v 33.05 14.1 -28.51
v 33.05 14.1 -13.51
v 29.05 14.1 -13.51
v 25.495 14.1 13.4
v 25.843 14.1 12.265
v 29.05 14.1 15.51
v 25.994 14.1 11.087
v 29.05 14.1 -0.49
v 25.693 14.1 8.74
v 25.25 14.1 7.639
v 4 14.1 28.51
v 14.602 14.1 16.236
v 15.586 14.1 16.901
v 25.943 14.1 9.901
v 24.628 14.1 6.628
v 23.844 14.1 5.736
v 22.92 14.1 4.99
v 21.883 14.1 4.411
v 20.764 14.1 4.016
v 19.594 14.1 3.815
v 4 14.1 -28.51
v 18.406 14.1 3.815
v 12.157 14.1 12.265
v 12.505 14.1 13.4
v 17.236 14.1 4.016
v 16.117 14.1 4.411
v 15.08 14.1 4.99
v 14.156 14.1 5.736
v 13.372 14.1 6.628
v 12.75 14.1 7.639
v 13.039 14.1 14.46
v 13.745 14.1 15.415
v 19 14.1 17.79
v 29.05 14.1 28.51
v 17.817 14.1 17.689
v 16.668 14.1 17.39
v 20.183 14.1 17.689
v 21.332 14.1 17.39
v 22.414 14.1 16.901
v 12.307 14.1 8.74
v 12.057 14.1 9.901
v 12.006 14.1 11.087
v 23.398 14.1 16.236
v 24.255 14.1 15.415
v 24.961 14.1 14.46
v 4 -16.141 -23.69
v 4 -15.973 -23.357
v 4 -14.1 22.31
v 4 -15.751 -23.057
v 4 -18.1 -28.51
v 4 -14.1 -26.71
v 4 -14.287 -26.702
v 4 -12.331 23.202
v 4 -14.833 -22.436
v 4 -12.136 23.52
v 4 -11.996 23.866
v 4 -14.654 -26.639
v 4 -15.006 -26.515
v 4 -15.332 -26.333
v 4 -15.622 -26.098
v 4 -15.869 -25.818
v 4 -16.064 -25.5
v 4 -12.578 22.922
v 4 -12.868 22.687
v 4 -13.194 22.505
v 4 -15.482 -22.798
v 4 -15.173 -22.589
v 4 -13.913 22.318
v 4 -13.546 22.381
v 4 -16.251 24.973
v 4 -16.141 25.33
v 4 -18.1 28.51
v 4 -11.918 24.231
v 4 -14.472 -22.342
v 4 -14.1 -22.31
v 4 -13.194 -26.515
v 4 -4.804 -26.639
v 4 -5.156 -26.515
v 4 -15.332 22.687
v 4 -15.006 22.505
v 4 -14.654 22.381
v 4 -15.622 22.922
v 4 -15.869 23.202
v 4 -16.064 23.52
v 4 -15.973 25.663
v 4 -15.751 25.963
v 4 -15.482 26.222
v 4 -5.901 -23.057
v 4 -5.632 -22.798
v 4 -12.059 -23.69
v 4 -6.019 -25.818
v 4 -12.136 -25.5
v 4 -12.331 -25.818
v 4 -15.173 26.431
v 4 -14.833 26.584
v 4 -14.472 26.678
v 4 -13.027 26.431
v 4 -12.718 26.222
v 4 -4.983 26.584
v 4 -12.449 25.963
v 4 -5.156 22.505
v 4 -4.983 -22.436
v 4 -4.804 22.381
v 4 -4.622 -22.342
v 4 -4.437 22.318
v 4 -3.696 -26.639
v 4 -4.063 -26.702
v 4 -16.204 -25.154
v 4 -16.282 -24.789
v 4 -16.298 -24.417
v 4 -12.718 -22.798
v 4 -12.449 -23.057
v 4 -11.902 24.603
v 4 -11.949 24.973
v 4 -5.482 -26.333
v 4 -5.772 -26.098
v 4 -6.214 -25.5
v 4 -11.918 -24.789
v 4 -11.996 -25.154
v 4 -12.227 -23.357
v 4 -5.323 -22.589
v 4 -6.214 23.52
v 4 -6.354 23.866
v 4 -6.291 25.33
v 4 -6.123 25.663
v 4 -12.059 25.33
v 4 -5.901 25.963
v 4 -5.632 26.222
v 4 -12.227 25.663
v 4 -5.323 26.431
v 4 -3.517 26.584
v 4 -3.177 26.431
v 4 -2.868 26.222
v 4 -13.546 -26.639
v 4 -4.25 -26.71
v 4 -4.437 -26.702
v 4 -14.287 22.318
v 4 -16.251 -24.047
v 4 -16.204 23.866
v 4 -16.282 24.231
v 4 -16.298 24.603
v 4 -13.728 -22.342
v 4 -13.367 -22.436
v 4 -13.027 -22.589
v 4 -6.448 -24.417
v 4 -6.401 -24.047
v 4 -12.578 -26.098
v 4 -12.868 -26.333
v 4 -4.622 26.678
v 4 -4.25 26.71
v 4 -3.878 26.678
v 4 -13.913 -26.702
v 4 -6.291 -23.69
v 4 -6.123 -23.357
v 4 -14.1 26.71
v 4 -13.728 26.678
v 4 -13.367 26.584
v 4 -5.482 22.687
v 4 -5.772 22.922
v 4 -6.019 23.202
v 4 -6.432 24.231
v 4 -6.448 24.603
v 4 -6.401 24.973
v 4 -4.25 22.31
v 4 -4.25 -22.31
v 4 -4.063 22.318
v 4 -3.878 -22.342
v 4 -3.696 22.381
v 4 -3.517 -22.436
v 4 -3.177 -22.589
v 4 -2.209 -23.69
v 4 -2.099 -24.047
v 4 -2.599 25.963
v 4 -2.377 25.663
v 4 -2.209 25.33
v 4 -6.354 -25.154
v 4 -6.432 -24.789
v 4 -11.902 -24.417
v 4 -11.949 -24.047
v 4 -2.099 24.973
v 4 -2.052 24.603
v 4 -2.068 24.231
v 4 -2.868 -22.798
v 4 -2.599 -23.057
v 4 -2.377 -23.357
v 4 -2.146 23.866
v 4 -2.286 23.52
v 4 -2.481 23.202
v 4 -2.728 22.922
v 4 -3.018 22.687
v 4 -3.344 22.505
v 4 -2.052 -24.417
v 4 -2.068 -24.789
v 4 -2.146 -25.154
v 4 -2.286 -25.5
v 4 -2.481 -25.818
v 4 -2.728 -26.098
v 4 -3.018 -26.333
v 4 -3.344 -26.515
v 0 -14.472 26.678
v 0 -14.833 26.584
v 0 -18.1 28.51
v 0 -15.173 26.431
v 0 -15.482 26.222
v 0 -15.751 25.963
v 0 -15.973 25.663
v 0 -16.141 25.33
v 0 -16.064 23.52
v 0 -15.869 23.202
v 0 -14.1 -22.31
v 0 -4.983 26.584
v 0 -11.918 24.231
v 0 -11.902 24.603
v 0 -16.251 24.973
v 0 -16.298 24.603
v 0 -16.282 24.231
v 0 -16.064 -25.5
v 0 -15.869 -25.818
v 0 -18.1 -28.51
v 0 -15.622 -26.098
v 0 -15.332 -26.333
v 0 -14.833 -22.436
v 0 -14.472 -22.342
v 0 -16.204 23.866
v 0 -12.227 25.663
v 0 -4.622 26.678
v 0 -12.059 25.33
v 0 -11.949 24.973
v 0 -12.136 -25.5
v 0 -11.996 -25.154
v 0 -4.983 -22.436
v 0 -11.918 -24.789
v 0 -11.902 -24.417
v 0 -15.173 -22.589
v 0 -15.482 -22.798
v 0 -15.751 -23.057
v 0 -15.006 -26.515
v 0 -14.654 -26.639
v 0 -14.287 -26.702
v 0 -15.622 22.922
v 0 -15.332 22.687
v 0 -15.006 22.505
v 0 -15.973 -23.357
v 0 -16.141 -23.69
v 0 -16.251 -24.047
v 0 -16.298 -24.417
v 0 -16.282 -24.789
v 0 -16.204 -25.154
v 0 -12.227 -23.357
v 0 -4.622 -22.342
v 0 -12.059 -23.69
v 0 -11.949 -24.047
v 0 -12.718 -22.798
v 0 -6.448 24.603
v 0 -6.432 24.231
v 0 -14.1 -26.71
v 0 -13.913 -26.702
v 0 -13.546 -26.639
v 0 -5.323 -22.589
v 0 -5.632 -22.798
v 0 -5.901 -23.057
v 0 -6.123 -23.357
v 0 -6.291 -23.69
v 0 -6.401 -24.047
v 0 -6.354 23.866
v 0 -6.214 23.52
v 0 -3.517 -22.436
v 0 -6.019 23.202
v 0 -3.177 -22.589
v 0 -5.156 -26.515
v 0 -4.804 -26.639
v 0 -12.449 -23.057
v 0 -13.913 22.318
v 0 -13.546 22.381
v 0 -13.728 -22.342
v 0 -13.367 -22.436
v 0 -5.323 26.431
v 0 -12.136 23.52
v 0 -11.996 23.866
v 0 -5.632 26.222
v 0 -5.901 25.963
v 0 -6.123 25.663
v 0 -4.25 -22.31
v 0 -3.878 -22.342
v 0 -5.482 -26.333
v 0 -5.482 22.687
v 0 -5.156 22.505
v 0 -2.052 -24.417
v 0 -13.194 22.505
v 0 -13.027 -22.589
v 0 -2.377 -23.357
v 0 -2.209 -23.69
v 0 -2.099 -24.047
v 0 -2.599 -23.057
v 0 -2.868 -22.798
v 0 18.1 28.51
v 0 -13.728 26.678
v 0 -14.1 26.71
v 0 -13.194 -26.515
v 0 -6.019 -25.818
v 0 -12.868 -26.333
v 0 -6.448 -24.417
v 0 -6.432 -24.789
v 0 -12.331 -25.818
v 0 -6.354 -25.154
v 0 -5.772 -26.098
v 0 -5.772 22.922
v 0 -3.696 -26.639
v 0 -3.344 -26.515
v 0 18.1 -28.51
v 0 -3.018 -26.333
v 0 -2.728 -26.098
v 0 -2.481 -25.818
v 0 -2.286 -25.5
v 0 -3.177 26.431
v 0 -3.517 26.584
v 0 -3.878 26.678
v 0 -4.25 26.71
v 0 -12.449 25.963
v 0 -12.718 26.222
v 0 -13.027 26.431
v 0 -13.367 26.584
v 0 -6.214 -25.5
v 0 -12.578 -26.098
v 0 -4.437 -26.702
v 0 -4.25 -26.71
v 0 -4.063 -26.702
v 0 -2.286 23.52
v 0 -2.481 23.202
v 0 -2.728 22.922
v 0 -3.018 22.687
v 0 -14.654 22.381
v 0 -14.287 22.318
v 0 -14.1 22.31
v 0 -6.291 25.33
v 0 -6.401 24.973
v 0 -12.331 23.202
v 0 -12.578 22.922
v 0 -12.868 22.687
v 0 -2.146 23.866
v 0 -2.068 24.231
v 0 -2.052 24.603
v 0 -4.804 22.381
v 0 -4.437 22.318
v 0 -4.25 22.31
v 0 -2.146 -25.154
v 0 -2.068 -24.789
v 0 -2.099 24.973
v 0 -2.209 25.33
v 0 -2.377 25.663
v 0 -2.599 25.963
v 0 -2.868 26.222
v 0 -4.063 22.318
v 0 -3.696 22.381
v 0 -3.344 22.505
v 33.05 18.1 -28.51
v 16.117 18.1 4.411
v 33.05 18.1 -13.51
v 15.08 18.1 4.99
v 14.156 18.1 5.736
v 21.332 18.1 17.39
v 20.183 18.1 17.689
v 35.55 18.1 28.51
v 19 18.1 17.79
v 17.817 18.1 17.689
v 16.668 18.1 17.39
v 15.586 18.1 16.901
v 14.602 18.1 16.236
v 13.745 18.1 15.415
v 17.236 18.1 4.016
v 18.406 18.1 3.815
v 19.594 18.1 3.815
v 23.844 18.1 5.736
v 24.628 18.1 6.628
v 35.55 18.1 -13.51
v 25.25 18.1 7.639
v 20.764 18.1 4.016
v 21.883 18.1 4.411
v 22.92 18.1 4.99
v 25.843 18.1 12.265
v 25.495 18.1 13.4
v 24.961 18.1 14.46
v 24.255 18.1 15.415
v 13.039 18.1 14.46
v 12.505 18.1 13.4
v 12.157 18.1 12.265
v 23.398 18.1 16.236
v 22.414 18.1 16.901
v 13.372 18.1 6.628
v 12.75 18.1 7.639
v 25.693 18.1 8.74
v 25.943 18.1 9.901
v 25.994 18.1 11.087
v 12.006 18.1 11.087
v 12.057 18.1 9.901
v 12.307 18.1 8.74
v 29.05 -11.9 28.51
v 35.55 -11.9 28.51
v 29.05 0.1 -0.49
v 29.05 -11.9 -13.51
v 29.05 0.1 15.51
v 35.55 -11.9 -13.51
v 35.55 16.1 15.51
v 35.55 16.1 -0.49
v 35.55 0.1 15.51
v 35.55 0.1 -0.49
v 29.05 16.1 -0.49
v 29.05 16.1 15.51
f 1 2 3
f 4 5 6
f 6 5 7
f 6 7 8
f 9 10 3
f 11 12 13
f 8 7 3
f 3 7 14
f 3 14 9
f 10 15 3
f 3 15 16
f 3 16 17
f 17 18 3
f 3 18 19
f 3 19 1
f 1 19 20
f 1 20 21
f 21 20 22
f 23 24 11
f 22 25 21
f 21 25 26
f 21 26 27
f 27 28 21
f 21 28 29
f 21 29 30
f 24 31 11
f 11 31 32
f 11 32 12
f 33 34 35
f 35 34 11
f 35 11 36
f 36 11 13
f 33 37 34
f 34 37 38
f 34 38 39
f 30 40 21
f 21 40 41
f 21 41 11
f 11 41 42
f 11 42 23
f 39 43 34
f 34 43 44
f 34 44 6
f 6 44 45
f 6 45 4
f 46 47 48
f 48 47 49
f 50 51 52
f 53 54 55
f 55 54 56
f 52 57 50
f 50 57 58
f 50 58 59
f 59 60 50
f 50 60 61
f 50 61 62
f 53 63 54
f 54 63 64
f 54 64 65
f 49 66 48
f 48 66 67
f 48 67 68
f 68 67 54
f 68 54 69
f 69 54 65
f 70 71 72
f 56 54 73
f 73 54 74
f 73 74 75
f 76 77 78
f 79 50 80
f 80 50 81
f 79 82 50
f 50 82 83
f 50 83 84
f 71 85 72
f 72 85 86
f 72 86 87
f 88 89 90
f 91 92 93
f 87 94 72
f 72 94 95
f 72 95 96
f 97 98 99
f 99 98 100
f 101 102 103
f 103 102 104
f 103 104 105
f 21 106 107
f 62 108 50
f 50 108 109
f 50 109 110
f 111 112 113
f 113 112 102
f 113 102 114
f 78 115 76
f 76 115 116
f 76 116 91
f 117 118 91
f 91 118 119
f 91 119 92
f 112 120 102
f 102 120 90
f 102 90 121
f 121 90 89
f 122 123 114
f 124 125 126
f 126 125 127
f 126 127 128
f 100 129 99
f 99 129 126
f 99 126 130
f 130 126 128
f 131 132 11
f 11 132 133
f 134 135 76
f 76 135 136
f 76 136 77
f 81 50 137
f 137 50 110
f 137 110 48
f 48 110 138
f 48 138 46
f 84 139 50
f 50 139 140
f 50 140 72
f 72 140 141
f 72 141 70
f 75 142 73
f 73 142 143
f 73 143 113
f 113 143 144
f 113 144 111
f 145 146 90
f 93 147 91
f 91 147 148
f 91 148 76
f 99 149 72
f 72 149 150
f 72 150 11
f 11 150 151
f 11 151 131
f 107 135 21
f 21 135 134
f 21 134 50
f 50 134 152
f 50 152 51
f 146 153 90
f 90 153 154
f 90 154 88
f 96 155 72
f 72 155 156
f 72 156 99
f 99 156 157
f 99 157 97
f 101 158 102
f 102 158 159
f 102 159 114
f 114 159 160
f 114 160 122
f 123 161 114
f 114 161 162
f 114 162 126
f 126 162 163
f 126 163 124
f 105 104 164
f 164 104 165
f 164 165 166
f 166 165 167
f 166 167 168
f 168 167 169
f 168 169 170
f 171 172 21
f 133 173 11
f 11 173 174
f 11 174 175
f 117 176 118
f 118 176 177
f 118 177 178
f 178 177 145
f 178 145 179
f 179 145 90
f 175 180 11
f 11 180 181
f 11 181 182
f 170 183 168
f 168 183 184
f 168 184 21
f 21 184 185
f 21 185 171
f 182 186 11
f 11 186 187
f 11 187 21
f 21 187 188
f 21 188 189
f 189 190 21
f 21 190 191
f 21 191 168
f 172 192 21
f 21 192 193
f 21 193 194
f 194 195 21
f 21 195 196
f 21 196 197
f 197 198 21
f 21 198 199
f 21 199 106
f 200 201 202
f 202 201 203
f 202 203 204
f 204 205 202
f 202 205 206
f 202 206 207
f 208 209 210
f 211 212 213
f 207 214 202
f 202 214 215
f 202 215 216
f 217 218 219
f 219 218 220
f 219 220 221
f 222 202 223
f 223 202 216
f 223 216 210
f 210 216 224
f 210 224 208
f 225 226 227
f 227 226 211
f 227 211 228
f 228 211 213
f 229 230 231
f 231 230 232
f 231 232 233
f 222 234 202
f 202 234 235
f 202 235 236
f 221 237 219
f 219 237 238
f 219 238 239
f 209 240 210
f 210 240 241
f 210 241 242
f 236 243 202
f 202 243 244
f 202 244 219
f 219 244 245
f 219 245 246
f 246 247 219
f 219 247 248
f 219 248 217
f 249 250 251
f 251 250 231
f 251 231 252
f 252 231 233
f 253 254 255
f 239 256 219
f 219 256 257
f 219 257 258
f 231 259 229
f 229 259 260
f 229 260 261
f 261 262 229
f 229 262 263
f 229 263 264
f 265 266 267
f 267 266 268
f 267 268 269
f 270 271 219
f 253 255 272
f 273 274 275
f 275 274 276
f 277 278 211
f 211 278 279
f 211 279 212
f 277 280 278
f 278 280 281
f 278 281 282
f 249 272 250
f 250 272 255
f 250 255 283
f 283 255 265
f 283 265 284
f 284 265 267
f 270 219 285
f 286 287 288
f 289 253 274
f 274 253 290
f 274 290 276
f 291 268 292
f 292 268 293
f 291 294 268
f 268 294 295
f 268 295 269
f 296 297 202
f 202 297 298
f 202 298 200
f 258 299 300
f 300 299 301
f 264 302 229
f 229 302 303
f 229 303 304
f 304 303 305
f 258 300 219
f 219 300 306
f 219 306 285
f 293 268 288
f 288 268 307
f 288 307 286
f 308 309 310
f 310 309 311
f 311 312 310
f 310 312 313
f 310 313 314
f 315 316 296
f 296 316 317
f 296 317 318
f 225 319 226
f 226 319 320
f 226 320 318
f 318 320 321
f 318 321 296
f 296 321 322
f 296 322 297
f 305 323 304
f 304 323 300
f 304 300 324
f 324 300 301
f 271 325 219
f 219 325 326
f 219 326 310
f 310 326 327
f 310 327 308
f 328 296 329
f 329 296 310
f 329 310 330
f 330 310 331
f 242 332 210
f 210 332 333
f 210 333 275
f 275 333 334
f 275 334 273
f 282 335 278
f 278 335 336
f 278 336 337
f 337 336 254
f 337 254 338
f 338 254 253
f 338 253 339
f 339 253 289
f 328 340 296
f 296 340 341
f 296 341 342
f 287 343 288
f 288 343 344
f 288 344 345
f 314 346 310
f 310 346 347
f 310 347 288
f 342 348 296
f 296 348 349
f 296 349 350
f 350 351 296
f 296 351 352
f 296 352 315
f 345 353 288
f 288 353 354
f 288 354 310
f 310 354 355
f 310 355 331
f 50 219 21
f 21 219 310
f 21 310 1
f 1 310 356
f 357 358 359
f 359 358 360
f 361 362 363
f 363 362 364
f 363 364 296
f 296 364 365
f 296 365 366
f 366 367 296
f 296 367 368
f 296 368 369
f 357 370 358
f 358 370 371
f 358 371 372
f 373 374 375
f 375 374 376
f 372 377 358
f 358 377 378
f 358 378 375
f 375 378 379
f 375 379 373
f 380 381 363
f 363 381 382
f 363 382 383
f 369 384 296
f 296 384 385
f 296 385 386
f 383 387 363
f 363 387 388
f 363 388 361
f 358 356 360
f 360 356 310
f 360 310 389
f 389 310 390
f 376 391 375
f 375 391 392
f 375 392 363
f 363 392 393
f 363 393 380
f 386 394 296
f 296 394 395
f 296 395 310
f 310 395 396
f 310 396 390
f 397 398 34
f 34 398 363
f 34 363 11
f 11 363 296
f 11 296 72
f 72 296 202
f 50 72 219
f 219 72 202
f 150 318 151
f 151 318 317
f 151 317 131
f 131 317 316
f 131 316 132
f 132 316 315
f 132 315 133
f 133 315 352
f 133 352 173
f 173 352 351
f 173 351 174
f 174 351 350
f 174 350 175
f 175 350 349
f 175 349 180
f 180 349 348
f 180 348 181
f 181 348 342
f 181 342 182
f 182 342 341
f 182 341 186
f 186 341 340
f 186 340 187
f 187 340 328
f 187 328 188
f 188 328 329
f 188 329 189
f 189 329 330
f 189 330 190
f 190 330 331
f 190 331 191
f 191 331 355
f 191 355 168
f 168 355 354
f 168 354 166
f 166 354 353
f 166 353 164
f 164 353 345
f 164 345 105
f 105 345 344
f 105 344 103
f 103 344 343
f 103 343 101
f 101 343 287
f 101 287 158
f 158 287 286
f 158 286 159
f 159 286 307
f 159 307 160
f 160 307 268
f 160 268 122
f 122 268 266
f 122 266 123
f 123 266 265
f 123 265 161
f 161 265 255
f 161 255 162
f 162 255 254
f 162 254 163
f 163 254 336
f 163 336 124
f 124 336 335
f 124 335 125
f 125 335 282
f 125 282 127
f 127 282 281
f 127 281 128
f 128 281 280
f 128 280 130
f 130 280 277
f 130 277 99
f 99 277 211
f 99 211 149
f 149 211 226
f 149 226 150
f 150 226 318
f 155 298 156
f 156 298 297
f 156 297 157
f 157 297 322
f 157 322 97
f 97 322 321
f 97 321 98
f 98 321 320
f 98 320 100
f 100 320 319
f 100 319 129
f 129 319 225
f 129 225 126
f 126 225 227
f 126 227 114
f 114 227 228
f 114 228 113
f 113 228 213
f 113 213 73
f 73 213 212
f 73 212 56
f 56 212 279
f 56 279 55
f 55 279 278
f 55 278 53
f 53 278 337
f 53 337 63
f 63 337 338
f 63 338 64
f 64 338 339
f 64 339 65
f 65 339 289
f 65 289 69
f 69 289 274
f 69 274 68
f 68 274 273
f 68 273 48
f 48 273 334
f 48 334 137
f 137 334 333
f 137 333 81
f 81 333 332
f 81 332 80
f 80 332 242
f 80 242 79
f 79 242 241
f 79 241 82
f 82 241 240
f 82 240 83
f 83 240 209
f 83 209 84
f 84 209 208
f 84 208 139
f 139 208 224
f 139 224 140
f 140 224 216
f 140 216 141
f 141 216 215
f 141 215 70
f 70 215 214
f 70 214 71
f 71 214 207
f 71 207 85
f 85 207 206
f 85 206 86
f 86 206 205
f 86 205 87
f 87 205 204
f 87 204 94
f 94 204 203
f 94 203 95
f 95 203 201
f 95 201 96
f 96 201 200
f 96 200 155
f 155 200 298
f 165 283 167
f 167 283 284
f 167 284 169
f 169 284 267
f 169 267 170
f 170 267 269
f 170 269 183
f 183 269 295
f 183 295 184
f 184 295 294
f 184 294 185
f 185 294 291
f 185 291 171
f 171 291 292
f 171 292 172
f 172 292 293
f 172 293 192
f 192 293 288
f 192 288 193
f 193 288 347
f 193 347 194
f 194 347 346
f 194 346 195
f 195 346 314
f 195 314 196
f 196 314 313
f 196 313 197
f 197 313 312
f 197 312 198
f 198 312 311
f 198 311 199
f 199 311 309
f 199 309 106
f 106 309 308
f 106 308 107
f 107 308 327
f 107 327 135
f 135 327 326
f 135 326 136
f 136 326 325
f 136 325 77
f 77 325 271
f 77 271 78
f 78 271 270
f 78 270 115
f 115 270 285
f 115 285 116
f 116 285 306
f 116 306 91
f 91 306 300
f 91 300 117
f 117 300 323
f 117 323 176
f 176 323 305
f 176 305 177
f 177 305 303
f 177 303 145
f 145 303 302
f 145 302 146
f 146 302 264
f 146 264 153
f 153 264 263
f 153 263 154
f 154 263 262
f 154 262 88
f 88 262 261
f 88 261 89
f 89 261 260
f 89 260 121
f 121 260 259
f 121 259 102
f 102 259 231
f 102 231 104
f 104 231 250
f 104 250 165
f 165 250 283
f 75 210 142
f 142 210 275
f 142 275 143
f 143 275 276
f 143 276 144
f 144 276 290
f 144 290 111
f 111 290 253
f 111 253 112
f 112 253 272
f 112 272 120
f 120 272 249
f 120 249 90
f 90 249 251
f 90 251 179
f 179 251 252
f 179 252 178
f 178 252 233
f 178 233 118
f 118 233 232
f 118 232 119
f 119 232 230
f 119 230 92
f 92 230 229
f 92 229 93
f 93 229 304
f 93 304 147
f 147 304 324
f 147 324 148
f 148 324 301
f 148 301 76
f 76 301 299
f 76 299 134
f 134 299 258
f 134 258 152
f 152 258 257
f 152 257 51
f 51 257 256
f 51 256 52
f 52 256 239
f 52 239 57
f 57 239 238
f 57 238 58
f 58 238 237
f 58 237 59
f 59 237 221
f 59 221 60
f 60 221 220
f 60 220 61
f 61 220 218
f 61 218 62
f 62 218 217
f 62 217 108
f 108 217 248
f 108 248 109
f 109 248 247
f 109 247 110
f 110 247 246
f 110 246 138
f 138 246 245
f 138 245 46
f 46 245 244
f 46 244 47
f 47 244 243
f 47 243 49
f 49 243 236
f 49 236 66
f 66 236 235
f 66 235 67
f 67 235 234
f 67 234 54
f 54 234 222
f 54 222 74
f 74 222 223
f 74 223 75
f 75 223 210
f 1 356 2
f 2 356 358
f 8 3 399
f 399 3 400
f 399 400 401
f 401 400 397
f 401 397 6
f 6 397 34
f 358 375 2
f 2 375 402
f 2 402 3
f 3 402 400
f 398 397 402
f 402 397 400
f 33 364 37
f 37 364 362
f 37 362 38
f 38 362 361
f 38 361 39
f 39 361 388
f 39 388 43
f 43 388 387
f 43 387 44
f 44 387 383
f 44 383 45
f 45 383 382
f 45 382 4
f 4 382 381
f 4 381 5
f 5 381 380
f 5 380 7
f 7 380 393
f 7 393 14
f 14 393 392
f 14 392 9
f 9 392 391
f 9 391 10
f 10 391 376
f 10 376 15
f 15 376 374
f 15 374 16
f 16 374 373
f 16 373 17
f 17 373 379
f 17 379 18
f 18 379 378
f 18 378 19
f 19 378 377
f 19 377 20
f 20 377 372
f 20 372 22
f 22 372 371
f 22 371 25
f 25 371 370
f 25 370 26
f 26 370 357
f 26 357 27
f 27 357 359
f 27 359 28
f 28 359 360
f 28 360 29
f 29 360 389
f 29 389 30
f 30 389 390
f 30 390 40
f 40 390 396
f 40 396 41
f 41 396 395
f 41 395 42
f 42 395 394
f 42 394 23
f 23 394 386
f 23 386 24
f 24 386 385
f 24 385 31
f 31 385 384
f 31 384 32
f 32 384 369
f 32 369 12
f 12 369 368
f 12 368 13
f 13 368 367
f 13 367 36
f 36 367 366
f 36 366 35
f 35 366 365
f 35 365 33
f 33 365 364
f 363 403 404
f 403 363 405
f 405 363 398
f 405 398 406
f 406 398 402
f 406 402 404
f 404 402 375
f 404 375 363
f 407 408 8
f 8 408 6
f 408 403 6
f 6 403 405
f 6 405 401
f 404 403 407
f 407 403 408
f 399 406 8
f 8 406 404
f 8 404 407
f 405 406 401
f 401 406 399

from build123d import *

# Parameters (mm, degrees)
SKETCH1_W           = 57.02
SKETCH1_H           = 36.2
SKETCH1_R           = 2.2
BOSS_EXTRUDE1_DEPTH = 4
SKETCH2_W           = 57.02
SKETCH2_H           = 4
BOSS_EXTRUDE2_DEPTH = 29.05
SKETCH3_W           = 4
SKETCH3_H           = 42.02
BOSS_EXTRUDE3_DEPTH = 26
SKETCH5_R           = 7
CUT_EXTRUDE1_DEPTH  = 4
SKETCH6_W           = 42.02
SKETCH6_H           = 30
BOSS_EXTRUDE4_DEPTH = 2.5
SKETCH7_W           = 16
SKETCH7_H           = 16
CUT_EXTRUDE2_DEPTH  = 6.5


with BuildPart() as part:
    # Sketch1 → Boss-Extrude1 (new body)
    with BuildSketch(Plane(origin=(0, 0, 0), x_dir=(0, 0, -1), z_dir=(1, 0, 0))):
        Rectangle(SKETCH1_W, SKETCH1_H)
        with Locations((-24.51, -4.25)):
            Circle(SKETCH1_R, mode=Mode.SUBTRACT)
        with Locations((-24.51, -14.1)):
            Circle(SKETCH1_R, mode=Mode.SUBTRACT)
        with Locations((24.51, -4.25)):
            Circle(SKETCH1_R, mode=Mode.SUBTRACT)
        with Locations((24.51, -14.1)):
            Circle(SKETCH1_R, mode=Mode.SUBTRACT)
    extrude(amount=BOSS_EXTRUDE1_DEPTH)

    # Sketch2 → Boss-Extrude2 (add)
    with BuildSketch(Plane(origin=(4, 0, 0), x_dir=(0, 0, -1), z_dir=(1, 0, 0))):
        with Locations((0, 16.1)):
            Rectangle(SKETCH2_W, SKETCH2_H)
    extrude(amount=BOSS_EXTRUDE2_DEPTH)

    # Sketch3 → Boss-Extrude3 (add)
    with BuildSketch(Plane.XZ.offset(-14.1)):
        with Locations((31.05, 7.5)):
            Rectangle(SKETCH3_W, SKETCH3_H)
    extrude(amount=BOSS_EXTRUDE3_DEPTH)

    # Sketch5 → Cut-Extrude1 (cut)
    with BuildSketch(Plane(origin=(0, 18.1, 0), x_dir=(1, 0, 0), z_dir=(0, 1, 0))):
        with Locations((19, -10.79)):
            Circle(SKETCH5_R)
    extrude(amount=-CUT_EXTRUDE1_DEPTH, mode=Mode.SUBTRACT)

    # Sketch6 → Boss-Extrude4 (add)
    with BuildSketch(Plane(origin=(33.05, 0, 0), x_dir=(0, 0, -1), z_dir=(1, 0, 0))):
        with Locations((-7.5, 3.1)):
            Rectangle(SKETCH6_W, SKETCH6_H)
    extrude(amount=BOSS_EXTRUDE4_DEPTH)

    # Sketch7 → Cut-Extrude2 (cut)
    with BuildSketch(Plane(origin=(35.55, 0, 0), x_dir=(0, 0, -1), z_dir=(1, 0, 0))):
        with Locations((-7.51, 8.1)):
            Rectangle(SKETCH7_W, SKETCH7_H)
    extrude(amount=-CUT_EXTRUDE2_DEPTH, mode=Mode.SUBTRACT)


solid = part.part
